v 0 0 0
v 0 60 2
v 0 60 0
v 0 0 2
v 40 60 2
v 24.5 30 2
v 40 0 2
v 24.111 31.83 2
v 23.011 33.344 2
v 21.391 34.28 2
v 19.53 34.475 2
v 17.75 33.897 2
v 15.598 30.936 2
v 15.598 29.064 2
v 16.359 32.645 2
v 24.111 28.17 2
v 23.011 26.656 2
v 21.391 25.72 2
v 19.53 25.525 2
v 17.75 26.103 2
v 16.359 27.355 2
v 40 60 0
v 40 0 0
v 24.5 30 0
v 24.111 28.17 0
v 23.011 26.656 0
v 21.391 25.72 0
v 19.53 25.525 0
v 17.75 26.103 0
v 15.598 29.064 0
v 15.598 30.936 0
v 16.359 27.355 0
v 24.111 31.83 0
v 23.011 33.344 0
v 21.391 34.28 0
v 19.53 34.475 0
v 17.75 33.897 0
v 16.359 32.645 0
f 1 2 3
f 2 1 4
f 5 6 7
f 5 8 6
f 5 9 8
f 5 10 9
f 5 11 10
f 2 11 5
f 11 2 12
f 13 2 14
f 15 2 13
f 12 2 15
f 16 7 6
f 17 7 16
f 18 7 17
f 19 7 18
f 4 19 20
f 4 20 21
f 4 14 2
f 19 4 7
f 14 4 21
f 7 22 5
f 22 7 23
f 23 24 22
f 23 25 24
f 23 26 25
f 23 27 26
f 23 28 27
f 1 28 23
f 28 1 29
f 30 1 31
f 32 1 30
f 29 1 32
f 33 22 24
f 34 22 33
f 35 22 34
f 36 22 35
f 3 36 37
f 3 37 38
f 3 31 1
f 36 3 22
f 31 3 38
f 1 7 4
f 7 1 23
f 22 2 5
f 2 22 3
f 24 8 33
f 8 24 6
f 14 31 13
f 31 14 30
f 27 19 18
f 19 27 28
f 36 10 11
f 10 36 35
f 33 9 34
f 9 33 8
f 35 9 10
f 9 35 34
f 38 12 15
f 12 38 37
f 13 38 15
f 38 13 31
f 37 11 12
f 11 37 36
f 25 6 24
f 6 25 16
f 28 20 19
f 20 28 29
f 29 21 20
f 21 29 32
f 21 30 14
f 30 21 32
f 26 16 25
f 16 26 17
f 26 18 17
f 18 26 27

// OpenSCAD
cameraMountWasher();

module cameraMountWasher()
{
	xLength = 40;
	yLength = 60;
	
    difference()
    {
    	cube([xLength, yLength, 2]);
    	
    	translate([xLength/2.0, yLength/2.0, -0.1])
    	cylinder(r=4.5, h=2.2);
    }
}
